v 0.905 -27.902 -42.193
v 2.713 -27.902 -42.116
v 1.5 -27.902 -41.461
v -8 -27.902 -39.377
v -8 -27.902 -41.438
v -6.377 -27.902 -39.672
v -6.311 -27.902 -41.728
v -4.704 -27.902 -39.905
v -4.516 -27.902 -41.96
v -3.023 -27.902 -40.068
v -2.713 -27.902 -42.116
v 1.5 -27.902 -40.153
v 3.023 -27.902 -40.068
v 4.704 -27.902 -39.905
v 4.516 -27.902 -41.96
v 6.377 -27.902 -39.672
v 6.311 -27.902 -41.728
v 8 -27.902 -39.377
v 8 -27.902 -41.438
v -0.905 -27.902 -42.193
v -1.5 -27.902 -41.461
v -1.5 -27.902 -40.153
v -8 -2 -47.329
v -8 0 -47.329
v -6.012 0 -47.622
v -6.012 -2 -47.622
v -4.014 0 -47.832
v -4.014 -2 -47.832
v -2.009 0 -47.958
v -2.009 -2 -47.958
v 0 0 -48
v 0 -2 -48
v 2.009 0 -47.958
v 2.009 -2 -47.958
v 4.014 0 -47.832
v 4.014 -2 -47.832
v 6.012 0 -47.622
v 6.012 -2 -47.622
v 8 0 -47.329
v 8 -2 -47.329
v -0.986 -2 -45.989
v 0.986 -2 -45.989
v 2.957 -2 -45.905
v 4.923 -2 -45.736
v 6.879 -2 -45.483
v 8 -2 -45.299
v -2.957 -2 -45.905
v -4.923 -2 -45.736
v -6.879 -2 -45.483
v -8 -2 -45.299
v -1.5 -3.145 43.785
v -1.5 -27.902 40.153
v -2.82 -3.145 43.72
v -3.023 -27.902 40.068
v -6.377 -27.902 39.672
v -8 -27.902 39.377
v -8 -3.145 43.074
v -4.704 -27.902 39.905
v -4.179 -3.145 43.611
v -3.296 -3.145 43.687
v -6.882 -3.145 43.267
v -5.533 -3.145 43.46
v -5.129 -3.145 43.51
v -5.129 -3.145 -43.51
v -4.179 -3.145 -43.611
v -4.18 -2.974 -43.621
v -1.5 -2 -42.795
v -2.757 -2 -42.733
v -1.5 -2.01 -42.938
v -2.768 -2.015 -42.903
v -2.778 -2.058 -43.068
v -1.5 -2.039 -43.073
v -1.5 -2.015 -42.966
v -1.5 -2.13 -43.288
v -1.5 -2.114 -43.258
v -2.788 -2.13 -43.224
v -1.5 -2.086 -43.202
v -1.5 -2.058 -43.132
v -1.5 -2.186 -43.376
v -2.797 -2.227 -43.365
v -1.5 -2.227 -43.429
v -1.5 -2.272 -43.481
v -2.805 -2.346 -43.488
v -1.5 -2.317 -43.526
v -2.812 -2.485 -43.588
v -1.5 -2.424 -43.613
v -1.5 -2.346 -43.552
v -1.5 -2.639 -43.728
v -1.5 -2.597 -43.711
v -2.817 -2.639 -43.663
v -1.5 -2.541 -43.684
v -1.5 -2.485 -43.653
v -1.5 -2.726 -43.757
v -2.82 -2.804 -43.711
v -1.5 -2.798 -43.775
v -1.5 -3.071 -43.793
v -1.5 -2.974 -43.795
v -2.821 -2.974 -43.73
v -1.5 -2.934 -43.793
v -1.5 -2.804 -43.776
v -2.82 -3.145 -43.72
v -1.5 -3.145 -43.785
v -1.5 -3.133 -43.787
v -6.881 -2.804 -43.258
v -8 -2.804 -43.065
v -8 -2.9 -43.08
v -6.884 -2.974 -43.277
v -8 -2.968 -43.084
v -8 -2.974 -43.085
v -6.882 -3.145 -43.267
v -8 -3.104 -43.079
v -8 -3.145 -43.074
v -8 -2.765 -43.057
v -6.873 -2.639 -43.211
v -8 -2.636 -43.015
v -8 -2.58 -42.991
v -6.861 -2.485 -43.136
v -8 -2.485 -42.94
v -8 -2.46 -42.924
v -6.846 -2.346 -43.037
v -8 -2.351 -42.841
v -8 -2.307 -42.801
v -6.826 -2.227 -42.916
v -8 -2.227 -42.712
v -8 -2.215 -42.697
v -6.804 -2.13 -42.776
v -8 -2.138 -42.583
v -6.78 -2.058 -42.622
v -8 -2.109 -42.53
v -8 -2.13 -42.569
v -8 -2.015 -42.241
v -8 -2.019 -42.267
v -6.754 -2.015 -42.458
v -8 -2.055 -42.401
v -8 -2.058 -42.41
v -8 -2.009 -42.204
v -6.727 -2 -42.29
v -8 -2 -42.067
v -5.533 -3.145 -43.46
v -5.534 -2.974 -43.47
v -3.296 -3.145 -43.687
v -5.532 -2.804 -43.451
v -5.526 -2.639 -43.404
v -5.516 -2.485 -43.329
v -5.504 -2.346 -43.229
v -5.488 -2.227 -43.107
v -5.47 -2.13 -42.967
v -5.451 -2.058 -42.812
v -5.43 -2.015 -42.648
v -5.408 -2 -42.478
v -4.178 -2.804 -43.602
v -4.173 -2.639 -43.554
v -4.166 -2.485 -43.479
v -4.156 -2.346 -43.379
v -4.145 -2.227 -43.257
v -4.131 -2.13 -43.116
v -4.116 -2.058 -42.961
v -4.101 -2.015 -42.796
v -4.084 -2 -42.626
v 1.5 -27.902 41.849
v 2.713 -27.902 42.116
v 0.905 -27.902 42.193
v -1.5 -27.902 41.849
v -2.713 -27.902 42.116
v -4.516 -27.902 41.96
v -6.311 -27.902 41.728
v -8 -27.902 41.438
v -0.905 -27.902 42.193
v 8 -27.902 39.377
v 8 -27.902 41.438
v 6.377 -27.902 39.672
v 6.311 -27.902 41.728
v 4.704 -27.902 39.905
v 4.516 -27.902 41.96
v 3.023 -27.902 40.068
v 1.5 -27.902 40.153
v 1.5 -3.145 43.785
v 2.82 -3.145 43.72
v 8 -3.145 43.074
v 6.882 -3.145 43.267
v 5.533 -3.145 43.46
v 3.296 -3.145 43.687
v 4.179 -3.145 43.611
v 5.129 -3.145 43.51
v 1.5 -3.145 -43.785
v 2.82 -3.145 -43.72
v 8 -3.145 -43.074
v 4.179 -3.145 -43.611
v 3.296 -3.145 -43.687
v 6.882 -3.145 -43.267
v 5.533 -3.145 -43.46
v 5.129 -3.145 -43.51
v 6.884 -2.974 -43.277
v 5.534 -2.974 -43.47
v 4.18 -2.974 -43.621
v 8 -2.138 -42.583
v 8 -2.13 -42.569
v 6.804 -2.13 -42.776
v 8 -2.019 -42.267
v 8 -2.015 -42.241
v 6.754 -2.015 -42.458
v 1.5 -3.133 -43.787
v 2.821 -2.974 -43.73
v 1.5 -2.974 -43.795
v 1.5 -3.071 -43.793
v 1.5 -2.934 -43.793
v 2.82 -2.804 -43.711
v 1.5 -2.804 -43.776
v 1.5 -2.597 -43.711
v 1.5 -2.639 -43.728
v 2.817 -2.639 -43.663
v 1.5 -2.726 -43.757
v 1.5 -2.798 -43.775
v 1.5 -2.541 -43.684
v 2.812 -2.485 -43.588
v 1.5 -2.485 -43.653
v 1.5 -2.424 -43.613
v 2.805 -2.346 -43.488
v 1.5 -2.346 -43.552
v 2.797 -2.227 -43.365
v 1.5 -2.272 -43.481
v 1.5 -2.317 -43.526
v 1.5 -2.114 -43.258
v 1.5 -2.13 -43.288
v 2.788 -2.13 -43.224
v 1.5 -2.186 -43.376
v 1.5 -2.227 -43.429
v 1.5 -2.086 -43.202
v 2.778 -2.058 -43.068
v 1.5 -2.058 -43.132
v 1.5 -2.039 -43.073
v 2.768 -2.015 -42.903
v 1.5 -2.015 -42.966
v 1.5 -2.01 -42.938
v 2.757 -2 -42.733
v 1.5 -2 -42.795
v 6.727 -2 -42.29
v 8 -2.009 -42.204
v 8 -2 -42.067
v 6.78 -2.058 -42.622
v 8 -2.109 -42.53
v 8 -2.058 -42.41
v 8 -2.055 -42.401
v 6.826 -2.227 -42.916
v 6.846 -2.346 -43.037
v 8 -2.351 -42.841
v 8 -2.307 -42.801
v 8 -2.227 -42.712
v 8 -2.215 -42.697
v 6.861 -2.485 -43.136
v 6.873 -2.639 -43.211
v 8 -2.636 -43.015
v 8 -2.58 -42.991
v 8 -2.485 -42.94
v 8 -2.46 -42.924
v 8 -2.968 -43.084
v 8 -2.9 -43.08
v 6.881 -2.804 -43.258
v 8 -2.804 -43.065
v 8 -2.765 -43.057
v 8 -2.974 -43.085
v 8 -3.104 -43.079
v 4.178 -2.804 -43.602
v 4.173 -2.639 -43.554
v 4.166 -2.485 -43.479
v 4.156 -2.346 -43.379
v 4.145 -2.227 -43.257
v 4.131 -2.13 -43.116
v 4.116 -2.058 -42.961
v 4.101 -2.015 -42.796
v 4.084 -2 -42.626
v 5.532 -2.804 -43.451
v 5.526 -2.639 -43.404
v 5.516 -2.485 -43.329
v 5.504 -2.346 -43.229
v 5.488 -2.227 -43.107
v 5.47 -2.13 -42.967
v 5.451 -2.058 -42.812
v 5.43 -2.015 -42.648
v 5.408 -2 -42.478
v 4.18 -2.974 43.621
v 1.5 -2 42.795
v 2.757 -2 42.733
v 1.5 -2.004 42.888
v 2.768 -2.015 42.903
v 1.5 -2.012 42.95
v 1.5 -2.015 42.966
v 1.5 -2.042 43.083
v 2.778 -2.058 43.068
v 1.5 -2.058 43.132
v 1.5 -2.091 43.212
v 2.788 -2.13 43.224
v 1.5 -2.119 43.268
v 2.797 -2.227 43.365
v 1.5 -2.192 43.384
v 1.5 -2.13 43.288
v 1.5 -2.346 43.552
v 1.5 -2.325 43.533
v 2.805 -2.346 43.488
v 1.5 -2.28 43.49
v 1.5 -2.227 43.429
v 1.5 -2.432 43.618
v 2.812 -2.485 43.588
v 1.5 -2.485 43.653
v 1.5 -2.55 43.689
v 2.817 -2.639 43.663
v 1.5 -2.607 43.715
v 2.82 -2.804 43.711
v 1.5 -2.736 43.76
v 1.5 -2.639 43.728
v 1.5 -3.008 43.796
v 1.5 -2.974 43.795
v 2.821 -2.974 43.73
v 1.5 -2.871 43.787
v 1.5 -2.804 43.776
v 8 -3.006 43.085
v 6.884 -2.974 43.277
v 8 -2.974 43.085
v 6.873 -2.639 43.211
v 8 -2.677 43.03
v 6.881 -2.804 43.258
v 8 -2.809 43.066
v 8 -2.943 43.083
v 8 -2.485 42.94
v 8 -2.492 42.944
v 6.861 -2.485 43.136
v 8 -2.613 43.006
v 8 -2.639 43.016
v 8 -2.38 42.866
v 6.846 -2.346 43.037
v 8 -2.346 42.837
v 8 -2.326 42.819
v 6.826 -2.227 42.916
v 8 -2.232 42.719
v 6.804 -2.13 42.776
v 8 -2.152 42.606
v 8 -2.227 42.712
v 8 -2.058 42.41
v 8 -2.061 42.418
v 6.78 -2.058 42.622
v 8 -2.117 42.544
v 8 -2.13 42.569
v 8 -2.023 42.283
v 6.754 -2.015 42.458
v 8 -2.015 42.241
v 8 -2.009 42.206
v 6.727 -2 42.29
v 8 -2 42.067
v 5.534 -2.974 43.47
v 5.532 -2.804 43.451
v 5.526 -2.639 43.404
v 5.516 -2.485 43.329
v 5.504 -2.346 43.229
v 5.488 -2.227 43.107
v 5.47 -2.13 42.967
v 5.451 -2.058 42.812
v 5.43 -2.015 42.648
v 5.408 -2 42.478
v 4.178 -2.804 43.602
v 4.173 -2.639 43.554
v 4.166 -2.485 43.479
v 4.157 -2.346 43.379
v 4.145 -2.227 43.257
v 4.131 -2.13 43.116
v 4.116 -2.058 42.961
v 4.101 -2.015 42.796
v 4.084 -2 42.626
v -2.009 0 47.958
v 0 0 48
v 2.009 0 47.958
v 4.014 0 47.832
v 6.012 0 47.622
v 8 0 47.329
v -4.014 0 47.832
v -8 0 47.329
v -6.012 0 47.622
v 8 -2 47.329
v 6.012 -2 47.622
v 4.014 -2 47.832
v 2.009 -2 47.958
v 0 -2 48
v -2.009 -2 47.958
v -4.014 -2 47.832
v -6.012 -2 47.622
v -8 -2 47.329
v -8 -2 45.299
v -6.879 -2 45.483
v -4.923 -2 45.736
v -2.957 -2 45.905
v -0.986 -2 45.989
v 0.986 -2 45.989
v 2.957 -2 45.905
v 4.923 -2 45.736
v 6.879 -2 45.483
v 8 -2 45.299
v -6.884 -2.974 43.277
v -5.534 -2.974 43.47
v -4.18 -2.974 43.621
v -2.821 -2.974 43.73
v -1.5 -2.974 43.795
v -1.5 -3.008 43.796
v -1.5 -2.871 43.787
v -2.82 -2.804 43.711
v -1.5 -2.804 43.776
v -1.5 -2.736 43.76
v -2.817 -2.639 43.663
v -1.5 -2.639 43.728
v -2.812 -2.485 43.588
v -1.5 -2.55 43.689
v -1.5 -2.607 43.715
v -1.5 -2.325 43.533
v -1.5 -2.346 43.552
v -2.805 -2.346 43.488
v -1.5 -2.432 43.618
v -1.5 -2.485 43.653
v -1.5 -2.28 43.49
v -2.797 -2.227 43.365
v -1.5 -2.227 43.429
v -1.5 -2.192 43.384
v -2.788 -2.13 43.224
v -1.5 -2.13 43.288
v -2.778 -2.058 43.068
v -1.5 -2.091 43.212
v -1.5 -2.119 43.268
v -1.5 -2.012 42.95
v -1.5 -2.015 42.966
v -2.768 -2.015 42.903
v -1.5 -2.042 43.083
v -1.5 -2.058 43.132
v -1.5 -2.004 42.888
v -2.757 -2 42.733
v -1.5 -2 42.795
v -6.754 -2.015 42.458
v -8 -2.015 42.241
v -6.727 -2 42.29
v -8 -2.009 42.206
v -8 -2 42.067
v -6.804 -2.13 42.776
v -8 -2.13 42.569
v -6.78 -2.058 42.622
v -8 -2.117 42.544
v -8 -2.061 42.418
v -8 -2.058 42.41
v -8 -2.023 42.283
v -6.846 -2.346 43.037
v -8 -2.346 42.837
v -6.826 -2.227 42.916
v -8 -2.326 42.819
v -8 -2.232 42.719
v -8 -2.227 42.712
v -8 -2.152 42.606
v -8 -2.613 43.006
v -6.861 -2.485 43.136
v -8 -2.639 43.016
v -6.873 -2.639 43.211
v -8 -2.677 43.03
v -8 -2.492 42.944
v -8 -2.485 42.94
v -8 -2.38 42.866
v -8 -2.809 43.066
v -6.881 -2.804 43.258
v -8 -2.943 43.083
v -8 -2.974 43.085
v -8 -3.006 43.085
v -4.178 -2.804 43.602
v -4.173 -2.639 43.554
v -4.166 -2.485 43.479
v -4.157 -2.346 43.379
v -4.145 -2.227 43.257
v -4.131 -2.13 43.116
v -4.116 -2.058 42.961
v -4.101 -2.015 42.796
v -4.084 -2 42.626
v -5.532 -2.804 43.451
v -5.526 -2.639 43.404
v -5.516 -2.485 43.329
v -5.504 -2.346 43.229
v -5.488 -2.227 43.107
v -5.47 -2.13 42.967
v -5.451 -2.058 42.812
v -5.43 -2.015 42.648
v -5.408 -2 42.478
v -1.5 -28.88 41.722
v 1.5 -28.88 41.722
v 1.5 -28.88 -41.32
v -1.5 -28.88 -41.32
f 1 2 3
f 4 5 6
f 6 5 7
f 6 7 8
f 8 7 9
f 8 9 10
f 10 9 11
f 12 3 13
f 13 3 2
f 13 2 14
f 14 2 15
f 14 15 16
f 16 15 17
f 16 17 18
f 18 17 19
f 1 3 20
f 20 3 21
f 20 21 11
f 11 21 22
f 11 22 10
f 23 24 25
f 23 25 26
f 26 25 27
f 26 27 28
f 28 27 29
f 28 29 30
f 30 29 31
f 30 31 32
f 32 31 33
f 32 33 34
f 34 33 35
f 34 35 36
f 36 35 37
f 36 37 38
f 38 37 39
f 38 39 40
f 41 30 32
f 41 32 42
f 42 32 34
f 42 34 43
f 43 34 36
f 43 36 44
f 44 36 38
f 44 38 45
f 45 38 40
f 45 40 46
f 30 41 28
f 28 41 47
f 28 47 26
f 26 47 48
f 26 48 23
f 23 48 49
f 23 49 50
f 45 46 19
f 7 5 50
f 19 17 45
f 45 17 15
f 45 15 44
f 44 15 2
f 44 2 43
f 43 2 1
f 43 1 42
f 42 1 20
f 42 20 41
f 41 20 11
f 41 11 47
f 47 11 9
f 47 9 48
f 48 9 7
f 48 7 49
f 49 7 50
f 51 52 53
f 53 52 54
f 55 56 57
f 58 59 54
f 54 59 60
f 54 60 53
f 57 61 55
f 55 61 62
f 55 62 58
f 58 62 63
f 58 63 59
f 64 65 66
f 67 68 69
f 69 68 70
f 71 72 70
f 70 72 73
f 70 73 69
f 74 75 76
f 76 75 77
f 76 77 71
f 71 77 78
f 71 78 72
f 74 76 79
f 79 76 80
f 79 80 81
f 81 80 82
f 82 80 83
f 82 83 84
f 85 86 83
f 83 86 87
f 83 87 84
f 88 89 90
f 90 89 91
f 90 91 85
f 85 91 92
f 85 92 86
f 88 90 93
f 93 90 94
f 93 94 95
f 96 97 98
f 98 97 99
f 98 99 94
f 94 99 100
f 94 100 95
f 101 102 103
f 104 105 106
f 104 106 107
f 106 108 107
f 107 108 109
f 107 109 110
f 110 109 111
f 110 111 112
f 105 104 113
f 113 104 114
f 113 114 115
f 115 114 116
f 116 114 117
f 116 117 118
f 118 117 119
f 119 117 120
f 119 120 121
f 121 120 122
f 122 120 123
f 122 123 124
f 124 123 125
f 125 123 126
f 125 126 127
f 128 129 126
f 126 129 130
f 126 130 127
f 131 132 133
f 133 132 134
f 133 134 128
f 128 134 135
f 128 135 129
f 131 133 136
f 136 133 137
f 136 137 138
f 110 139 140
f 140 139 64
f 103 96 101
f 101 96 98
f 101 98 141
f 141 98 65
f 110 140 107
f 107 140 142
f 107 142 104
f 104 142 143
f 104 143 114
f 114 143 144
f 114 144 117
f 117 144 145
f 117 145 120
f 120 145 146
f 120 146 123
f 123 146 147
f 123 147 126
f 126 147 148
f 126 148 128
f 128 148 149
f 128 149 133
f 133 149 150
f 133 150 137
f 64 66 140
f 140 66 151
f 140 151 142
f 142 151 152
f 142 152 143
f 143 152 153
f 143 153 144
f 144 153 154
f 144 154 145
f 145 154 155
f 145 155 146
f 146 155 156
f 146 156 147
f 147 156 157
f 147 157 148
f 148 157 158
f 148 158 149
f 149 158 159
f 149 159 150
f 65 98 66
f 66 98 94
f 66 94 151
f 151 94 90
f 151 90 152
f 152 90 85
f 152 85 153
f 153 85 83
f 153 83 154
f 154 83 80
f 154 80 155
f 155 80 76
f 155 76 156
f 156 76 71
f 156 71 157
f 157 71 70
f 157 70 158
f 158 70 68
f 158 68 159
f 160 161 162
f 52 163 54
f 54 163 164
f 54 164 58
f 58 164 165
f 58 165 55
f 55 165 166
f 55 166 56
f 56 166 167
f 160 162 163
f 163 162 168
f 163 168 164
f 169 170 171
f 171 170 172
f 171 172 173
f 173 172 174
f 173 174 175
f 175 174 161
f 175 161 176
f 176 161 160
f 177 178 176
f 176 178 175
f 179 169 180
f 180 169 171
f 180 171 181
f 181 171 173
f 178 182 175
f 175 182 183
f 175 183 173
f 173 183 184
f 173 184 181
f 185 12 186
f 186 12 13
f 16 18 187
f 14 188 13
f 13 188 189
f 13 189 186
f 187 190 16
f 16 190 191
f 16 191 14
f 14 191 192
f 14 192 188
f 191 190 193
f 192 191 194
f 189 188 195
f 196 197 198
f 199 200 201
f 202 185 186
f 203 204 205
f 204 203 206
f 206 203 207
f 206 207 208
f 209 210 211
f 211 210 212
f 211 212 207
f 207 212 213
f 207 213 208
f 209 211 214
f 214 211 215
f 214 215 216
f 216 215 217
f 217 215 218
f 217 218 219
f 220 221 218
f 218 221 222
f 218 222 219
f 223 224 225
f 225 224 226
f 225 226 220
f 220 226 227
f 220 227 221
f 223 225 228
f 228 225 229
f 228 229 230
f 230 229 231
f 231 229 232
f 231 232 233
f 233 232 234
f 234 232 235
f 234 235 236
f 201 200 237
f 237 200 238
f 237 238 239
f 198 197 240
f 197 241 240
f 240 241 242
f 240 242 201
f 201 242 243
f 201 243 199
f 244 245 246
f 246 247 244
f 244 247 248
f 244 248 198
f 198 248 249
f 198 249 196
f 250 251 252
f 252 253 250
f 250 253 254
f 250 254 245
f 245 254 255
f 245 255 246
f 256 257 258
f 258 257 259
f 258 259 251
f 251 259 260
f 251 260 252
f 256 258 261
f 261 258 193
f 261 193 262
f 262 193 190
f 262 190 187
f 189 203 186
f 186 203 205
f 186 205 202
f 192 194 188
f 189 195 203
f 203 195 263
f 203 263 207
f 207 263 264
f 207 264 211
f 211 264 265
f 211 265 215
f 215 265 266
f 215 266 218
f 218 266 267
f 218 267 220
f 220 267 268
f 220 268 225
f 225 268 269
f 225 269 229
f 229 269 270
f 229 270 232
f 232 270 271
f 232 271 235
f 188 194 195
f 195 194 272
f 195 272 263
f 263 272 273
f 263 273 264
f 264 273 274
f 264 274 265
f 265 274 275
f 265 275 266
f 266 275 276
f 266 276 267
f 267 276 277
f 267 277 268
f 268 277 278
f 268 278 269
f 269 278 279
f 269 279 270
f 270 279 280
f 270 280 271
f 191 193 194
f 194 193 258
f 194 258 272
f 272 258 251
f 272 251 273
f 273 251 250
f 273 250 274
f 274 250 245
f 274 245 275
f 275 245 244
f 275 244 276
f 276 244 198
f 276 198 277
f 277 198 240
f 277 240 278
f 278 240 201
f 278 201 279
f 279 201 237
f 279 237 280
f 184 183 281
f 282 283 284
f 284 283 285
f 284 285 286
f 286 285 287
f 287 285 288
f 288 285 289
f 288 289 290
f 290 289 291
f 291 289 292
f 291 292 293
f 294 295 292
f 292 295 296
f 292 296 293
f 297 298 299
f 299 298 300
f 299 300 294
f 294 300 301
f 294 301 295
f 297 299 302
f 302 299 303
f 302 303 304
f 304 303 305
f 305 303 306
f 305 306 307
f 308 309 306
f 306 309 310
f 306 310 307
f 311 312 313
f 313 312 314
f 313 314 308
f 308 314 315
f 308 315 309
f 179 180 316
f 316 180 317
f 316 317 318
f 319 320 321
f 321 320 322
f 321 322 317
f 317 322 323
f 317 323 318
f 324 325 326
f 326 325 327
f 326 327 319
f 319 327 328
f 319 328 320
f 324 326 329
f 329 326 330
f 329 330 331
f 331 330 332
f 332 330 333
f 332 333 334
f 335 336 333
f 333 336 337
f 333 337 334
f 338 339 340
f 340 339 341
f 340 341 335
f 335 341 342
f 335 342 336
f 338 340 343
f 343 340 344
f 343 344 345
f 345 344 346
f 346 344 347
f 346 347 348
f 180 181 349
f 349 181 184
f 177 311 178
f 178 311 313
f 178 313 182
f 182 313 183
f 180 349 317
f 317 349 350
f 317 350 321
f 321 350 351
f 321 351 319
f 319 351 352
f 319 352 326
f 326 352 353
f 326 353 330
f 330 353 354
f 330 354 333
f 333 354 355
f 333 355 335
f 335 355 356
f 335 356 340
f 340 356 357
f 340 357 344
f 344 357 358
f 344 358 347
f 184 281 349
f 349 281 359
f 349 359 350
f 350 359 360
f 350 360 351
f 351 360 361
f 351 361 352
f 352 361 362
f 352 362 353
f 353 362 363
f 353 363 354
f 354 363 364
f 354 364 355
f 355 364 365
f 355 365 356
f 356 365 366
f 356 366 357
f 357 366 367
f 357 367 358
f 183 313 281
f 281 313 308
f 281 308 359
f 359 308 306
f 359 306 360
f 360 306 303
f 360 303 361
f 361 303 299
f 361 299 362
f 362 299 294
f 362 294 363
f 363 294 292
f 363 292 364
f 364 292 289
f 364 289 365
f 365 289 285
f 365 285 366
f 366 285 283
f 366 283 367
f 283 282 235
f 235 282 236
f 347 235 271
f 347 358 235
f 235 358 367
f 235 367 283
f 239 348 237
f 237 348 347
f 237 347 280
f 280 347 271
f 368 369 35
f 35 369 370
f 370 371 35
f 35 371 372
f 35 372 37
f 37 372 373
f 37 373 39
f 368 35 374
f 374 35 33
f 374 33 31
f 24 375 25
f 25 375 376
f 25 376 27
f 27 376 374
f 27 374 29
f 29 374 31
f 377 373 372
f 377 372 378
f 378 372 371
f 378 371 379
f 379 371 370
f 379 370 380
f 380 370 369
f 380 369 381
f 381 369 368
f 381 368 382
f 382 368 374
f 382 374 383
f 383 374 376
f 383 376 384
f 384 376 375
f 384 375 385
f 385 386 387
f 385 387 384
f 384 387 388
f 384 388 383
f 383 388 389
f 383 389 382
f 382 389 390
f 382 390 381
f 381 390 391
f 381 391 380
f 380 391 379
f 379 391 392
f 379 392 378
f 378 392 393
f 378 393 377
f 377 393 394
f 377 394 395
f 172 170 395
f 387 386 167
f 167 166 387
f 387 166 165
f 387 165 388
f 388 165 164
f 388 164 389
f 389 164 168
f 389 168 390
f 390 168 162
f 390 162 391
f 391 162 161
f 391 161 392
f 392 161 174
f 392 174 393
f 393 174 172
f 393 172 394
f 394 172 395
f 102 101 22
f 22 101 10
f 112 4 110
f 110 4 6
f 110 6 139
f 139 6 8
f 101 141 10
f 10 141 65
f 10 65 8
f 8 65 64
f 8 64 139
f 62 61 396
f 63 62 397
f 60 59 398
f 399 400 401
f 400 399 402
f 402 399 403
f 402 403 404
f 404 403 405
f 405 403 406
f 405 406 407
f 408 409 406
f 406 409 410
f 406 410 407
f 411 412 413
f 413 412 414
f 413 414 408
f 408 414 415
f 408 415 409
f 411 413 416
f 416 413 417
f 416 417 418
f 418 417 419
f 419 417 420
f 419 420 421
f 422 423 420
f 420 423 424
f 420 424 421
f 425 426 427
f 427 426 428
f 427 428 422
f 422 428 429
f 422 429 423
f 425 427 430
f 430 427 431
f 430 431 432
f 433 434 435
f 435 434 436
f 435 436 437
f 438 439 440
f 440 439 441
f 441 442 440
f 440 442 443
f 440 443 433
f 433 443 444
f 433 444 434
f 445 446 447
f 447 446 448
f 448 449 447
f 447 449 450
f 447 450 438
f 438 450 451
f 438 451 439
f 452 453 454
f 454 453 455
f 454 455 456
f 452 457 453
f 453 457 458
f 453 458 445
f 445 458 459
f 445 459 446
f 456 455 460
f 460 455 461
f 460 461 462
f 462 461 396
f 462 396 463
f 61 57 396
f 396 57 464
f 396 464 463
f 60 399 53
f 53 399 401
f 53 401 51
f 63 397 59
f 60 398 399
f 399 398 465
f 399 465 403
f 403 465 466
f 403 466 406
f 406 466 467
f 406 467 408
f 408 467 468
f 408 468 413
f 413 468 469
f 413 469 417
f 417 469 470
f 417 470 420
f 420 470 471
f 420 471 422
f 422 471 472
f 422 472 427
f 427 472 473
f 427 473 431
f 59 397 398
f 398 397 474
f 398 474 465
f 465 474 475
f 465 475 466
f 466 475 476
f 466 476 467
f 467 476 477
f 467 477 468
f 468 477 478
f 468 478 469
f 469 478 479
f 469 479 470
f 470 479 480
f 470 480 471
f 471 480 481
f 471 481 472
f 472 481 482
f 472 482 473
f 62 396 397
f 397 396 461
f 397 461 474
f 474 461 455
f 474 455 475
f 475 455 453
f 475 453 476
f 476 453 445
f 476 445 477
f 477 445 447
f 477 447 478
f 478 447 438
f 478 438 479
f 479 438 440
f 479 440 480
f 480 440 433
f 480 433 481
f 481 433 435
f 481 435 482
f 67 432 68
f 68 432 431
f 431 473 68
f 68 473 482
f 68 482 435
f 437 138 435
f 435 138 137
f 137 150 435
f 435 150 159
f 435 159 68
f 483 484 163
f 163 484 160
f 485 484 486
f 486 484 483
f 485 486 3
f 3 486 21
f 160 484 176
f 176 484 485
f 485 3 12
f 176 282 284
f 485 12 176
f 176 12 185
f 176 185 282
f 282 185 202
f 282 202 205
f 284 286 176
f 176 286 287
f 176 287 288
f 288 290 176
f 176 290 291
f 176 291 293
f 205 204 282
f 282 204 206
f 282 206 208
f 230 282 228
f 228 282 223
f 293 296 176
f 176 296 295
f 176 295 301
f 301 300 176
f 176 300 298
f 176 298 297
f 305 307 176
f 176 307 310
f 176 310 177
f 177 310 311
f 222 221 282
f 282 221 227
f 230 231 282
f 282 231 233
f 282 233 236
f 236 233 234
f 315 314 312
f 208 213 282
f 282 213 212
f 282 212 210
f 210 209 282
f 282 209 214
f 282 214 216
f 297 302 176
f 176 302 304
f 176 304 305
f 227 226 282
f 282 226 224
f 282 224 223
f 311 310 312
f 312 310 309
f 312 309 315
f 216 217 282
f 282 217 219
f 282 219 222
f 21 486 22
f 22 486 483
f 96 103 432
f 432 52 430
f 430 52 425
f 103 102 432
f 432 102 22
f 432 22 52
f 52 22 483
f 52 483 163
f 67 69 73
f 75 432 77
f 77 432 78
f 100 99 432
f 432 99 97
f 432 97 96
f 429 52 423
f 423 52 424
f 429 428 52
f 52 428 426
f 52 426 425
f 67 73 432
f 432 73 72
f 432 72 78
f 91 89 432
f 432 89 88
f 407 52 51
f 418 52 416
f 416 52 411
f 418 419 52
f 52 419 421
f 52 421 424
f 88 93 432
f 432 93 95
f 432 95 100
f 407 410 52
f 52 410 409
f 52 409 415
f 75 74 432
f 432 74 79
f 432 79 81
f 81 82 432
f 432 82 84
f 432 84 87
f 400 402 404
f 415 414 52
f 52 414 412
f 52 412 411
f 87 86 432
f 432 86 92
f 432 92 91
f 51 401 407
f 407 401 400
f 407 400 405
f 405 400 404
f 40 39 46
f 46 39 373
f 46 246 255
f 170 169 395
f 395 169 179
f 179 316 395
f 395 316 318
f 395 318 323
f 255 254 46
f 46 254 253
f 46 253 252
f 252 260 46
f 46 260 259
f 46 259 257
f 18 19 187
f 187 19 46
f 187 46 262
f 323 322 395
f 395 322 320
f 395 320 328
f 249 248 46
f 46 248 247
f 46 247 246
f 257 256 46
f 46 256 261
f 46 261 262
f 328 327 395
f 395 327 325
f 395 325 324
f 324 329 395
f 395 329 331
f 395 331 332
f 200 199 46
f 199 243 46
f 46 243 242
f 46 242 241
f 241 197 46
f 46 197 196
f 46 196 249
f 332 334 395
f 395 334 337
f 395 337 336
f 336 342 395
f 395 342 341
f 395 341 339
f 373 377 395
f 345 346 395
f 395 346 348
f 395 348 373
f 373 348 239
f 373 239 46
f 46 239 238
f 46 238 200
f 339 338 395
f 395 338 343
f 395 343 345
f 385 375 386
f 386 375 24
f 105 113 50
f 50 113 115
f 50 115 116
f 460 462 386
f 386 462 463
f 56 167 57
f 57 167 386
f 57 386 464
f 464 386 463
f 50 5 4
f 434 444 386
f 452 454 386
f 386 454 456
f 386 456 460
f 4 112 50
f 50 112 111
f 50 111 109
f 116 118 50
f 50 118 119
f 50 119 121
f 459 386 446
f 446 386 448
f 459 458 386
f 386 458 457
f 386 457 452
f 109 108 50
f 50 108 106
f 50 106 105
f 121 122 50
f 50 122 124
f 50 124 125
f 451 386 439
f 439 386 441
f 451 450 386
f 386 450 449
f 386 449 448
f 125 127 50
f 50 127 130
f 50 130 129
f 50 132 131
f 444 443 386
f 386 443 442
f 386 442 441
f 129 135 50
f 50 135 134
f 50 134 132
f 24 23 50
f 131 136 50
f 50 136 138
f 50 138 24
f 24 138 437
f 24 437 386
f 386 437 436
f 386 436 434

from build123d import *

# Parameters (mm, degrees)
BOSS_EXTRUDE2_DEPTH = 1.5
CUTPLANE1_SKETCH_W  = 123.196195192
CUTPLANE1_SKETCH_H  = 53.525097373
CUT_EXTRUDE6_DEPTH  = 111
CUTPLANE2_SKETCH_W  = 123.196195192
CUTPLANE2_SKETCH_H  = 53.525097373
CUT_EXTRUDE7_DEPTH  = 111


with BuildPart() as part:
    # Sketch1 → Revolve1 (revolve)
    with BuildSketch(Plane.XY, mode=Mode.PRIVATE) as revolve1_sk:
        with BuildLine():
            Line((0, 0), (-48, 0))
            Line((-48, 0), (-48, -2))
            Line((-48, -2), (-46, -2))
            Line((-46, -2), (-42.202855897, -27.901871877))
            Line((-42.202855897, -27.901871877), (-40.181479372, -27.901871877))
            Line((-40.181479372, -27.901871877), (-43.810762695, -3.145046985))
            ThreePointArc((-43.810762695, -3.145046985), (-43.577990749, -2.346183124), (-42.821337927, -2))
            Line((-42.821337927, -2), (0, -2))
            Line((0, -2), (0, 0))
        make_face()
    revolve(revolve1_sk.sketch.rotate(Axis((0, 0, 0), (0, -1, 0)), 270), axis=Axis((0, 0, 0), (0, -1, 0)))

    # Sketch13 → Boss-Extrude2 (add, symmetric)
    with BuildSketch(Plane(origin=(0, 0, 0), x_dir=(0, 0, -1), z_dir=(1, 0, 0))):
        Polygon((-45.341508105, -0.931589376), (45.341508105, -0.931589376), (41.320088317, -28.8804569), (-41.722230296, -28.8804569), align=None)
    extrude(amount=BOSS_EXTRUDE2_DEPTH, both=True)

    # CutPlane1 Sketch → Cut-Extrude6 (cut)
    with BuildSketch(Plane(origin=(8, 0, 0), x_dir=(0, 0, -1), z_dir=(1, 0, 0))):
        with Locations((0.221178088, -12.173153045)):
            Rectangle(CUTPLANE1_SKETCH_W, CUTPLANE1_SKETCH_H)
    extrude(amount=CUT_EXTRUDE6_DEPTH, mode=Mode.SUBTRACT)

    # CutPlane2 Sketch → Cut-Extrude7 (cut)
    with BuildSketch(Plane(origin=(-8, 0, 0), x_dir=(0, 0, -1), z_dir=(1, 0, 0))):
        with Locations((0.221178088, -12.173153045)):
            Rectangle(CUTPLANE2_SKETCH_W, CUTPLANE2_SKETCH_H)
    extrude(amount=-CUT_EXTRUDE7_DEPTH, mode=Mode.SUBTRACT)


solid = part.part
